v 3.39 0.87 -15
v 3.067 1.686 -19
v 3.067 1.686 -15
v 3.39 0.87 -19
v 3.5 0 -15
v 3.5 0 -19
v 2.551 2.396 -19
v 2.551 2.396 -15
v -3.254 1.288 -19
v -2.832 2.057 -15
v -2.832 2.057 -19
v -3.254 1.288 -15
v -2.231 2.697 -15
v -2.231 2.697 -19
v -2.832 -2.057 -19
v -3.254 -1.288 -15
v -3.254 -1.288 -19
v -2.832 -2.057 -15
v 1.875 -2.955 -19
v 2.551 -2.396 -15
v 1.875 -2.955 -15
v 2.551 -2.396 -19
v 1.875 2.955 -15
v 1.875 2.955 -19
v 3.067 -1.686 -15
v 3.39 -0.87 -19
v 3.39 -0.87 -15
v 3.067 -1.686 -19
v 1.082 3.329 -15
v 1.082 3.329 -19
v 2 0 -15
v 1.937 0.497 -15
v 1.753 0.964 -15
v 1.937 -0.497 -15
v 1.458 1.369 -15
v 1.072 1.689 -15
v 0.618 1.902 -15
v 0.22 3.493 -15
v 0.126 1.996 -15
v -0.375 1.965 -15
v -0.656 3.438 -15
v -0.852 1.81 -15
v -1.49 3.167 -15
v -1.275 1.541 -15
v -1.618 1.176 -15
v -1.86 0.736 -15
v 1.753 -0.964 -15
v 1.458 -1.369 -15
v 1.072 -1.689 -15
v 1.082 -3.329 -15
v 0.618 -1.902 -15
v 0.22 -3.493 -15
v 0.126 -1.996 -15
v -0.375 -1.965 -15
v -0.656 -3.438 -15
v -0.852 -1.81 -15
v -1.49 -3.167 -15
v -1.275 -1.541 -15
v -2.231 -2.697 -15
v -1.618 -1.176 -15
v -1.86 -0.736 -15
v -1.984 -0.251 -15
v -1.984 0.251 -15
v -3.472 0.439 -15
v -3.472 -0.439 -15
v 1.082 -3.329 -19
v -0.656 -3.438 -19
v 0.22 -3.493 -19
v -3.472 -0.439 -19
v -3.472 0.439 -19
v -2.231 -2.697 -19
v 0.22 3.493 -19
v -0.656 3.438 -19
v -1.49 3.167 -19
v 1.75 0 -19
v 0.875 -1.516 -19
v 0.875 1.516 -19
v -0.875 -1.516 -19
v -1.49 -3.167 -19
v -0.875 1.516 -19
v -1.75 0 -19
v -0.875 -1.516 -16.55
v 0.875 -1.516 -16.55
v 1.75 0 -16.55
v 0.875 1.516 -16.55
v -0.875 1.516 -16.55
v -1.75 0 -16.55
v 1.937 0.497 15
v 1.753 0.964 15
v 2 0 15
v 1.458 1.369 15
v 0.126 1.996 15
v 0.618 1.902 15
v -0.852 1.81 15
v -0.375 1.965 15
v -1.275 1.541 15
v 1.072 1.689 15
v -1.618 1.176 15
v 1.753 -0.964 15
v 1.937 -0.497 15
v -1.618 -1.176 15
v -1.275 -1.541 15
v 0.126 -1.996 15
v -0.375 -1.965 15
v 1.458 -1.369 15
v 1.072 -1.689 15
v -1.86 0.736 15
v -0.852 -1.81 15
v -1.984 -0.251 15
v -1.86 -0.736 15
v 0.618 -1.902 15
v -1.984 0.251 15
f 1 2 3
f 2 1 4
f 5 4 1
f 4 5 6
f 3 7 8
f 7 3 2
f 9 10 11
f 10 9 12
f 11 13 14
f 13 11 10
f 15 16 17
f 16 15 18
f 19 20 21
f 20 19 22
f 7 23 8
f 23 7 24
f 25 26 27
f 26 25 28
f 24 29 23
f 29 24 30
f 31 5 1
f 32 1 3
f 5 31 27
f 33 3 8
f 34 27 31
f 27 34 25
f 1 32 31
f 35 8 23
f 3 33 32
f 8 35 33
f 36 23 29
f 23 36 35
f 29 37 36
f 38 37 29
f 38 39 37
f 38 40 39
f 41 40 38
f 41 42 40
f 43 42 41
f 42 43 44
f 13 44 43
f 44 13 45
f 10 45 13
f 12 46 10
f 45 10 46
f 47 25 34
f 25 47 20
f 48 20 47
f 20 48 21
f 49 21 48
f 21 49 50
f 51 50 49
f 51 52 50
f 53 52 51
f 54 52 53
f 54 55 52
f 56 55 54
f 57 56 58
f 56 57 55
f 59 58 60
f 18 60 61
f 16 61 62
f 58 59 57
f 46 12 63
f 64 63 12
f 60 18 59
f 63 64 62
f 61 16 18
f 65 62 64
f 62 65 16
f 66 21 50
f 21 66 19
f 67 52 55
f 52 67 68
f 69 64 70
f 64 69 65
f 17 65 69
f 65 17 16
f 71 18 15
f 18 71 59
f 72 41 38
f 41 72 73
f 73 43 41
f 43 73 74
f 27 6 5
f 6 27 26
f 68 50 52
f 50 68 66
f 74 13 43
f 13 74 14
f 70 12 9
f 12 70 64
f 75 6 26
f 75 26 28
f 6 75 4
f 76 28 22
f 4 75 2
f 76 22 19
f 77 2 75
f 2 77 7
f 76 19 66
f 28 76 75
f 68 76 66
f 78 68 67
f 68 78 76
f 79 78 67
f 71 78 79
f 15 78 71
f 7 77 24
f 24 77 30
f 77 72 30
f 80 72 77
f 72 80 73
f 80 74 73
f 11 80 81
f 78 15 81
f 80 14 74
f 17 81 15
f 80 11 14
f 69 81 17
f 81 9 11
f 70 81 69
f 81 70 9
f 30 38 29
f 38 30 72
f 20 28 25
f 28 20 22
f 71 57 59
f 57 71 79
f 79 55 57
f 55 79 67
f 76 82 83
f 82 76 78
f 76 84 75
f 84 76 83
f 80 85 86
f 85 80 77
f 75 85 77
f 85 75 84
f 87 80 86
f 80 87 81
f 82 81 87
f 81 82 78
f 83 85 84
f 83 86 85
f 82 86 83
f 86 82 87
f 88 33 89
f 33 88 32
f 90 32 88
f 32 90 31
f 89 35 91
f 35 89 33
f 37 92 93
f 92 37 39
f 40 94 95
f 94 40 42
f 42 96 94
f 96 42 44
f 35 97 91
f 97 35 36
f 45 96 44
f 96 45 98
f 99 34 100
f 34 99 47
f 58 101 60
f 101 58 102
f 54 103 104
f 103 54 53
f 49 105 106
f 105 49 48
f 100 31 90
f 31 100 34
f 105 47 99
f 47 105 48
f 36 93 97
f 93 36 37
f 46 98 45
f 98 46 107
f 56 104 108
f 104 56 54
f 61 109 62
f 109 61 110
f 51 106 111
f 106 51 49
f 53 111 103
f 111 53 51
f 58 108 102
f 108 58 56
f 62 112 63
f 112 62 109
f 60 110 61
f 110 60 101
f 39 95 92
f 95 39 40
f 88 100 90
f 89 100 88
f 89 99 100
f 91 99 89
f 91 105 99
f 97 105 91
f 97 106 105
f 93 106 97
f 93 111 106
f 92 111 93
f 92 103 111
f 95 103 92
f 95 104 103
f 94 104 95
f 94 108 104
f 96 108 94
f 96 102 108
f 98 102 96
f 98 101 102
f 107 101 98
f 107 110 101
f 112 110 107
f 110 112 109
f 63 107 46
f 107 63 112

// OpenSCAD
// file: lib/screw_nuts.scad
$fn=25;

module screw_m3(h=20, button=false){
    cylinder(d=3, h=h, center=true);
    translate([0, 0, -h/2-1.5])
        difference(){
            cylinder(d=5.5, h=3, center=true);
            translate([0, 0, -0.8])
                cylinder(d=2.8, h=1.8, $fn=6, center=true);
        }
}

module screw_m4(h=20, button=false){
    cylinder(d=4, h=h, center=true);
    translate([0, 0, -h/2-2])
        difference(){
            if (button) {
                translate([0, 0, 2])
                    scale([1, 1, 6/7.5])
                    sphere(d=7.5);
            } else {
                cylinder(d=7, h=4, center=true);
            }
            if (button) {
                 translate([0, 0, 5])
                    cube([7.6, 7.6, 6], center=true);
            }
            translate([0, 0, -0.8])
                cylinder(d=3.5, h=2.5, $fn=6, center=true);
        }
}

module nut_m3(){
    difference(){
        cylinder(d=6, h=2.4, $fn=6);
        translate([0, 0, -0.05])
            cylinder(d=3, h=2.5);
    }
}

module nut_m4(){
    difference(){
        cylinder(d=7.6, h=3.2, $fn=6);
        translate([0, 0, -0.05])
            cylinder(d=4, h=3.3);
    }
}

module washer_m3(h){
    difference(){
        cylinder(d=8, h=h, center=true);
        cylinder(d=3.4, h=h+0.1, center=true);
    }
}

module washer_m5(h){
    difference(){
        cylinder(d=8, h=h, center=true);
        cylinder(d=5.4, h=h+0.1, center=true);
    }
}
// main file
// NAME: Screw M4x30
// COLOR: 80
// CATEGORY: Support

include <lib/screw_nuts.scad>

color("silver")
    screw_m4(30);
